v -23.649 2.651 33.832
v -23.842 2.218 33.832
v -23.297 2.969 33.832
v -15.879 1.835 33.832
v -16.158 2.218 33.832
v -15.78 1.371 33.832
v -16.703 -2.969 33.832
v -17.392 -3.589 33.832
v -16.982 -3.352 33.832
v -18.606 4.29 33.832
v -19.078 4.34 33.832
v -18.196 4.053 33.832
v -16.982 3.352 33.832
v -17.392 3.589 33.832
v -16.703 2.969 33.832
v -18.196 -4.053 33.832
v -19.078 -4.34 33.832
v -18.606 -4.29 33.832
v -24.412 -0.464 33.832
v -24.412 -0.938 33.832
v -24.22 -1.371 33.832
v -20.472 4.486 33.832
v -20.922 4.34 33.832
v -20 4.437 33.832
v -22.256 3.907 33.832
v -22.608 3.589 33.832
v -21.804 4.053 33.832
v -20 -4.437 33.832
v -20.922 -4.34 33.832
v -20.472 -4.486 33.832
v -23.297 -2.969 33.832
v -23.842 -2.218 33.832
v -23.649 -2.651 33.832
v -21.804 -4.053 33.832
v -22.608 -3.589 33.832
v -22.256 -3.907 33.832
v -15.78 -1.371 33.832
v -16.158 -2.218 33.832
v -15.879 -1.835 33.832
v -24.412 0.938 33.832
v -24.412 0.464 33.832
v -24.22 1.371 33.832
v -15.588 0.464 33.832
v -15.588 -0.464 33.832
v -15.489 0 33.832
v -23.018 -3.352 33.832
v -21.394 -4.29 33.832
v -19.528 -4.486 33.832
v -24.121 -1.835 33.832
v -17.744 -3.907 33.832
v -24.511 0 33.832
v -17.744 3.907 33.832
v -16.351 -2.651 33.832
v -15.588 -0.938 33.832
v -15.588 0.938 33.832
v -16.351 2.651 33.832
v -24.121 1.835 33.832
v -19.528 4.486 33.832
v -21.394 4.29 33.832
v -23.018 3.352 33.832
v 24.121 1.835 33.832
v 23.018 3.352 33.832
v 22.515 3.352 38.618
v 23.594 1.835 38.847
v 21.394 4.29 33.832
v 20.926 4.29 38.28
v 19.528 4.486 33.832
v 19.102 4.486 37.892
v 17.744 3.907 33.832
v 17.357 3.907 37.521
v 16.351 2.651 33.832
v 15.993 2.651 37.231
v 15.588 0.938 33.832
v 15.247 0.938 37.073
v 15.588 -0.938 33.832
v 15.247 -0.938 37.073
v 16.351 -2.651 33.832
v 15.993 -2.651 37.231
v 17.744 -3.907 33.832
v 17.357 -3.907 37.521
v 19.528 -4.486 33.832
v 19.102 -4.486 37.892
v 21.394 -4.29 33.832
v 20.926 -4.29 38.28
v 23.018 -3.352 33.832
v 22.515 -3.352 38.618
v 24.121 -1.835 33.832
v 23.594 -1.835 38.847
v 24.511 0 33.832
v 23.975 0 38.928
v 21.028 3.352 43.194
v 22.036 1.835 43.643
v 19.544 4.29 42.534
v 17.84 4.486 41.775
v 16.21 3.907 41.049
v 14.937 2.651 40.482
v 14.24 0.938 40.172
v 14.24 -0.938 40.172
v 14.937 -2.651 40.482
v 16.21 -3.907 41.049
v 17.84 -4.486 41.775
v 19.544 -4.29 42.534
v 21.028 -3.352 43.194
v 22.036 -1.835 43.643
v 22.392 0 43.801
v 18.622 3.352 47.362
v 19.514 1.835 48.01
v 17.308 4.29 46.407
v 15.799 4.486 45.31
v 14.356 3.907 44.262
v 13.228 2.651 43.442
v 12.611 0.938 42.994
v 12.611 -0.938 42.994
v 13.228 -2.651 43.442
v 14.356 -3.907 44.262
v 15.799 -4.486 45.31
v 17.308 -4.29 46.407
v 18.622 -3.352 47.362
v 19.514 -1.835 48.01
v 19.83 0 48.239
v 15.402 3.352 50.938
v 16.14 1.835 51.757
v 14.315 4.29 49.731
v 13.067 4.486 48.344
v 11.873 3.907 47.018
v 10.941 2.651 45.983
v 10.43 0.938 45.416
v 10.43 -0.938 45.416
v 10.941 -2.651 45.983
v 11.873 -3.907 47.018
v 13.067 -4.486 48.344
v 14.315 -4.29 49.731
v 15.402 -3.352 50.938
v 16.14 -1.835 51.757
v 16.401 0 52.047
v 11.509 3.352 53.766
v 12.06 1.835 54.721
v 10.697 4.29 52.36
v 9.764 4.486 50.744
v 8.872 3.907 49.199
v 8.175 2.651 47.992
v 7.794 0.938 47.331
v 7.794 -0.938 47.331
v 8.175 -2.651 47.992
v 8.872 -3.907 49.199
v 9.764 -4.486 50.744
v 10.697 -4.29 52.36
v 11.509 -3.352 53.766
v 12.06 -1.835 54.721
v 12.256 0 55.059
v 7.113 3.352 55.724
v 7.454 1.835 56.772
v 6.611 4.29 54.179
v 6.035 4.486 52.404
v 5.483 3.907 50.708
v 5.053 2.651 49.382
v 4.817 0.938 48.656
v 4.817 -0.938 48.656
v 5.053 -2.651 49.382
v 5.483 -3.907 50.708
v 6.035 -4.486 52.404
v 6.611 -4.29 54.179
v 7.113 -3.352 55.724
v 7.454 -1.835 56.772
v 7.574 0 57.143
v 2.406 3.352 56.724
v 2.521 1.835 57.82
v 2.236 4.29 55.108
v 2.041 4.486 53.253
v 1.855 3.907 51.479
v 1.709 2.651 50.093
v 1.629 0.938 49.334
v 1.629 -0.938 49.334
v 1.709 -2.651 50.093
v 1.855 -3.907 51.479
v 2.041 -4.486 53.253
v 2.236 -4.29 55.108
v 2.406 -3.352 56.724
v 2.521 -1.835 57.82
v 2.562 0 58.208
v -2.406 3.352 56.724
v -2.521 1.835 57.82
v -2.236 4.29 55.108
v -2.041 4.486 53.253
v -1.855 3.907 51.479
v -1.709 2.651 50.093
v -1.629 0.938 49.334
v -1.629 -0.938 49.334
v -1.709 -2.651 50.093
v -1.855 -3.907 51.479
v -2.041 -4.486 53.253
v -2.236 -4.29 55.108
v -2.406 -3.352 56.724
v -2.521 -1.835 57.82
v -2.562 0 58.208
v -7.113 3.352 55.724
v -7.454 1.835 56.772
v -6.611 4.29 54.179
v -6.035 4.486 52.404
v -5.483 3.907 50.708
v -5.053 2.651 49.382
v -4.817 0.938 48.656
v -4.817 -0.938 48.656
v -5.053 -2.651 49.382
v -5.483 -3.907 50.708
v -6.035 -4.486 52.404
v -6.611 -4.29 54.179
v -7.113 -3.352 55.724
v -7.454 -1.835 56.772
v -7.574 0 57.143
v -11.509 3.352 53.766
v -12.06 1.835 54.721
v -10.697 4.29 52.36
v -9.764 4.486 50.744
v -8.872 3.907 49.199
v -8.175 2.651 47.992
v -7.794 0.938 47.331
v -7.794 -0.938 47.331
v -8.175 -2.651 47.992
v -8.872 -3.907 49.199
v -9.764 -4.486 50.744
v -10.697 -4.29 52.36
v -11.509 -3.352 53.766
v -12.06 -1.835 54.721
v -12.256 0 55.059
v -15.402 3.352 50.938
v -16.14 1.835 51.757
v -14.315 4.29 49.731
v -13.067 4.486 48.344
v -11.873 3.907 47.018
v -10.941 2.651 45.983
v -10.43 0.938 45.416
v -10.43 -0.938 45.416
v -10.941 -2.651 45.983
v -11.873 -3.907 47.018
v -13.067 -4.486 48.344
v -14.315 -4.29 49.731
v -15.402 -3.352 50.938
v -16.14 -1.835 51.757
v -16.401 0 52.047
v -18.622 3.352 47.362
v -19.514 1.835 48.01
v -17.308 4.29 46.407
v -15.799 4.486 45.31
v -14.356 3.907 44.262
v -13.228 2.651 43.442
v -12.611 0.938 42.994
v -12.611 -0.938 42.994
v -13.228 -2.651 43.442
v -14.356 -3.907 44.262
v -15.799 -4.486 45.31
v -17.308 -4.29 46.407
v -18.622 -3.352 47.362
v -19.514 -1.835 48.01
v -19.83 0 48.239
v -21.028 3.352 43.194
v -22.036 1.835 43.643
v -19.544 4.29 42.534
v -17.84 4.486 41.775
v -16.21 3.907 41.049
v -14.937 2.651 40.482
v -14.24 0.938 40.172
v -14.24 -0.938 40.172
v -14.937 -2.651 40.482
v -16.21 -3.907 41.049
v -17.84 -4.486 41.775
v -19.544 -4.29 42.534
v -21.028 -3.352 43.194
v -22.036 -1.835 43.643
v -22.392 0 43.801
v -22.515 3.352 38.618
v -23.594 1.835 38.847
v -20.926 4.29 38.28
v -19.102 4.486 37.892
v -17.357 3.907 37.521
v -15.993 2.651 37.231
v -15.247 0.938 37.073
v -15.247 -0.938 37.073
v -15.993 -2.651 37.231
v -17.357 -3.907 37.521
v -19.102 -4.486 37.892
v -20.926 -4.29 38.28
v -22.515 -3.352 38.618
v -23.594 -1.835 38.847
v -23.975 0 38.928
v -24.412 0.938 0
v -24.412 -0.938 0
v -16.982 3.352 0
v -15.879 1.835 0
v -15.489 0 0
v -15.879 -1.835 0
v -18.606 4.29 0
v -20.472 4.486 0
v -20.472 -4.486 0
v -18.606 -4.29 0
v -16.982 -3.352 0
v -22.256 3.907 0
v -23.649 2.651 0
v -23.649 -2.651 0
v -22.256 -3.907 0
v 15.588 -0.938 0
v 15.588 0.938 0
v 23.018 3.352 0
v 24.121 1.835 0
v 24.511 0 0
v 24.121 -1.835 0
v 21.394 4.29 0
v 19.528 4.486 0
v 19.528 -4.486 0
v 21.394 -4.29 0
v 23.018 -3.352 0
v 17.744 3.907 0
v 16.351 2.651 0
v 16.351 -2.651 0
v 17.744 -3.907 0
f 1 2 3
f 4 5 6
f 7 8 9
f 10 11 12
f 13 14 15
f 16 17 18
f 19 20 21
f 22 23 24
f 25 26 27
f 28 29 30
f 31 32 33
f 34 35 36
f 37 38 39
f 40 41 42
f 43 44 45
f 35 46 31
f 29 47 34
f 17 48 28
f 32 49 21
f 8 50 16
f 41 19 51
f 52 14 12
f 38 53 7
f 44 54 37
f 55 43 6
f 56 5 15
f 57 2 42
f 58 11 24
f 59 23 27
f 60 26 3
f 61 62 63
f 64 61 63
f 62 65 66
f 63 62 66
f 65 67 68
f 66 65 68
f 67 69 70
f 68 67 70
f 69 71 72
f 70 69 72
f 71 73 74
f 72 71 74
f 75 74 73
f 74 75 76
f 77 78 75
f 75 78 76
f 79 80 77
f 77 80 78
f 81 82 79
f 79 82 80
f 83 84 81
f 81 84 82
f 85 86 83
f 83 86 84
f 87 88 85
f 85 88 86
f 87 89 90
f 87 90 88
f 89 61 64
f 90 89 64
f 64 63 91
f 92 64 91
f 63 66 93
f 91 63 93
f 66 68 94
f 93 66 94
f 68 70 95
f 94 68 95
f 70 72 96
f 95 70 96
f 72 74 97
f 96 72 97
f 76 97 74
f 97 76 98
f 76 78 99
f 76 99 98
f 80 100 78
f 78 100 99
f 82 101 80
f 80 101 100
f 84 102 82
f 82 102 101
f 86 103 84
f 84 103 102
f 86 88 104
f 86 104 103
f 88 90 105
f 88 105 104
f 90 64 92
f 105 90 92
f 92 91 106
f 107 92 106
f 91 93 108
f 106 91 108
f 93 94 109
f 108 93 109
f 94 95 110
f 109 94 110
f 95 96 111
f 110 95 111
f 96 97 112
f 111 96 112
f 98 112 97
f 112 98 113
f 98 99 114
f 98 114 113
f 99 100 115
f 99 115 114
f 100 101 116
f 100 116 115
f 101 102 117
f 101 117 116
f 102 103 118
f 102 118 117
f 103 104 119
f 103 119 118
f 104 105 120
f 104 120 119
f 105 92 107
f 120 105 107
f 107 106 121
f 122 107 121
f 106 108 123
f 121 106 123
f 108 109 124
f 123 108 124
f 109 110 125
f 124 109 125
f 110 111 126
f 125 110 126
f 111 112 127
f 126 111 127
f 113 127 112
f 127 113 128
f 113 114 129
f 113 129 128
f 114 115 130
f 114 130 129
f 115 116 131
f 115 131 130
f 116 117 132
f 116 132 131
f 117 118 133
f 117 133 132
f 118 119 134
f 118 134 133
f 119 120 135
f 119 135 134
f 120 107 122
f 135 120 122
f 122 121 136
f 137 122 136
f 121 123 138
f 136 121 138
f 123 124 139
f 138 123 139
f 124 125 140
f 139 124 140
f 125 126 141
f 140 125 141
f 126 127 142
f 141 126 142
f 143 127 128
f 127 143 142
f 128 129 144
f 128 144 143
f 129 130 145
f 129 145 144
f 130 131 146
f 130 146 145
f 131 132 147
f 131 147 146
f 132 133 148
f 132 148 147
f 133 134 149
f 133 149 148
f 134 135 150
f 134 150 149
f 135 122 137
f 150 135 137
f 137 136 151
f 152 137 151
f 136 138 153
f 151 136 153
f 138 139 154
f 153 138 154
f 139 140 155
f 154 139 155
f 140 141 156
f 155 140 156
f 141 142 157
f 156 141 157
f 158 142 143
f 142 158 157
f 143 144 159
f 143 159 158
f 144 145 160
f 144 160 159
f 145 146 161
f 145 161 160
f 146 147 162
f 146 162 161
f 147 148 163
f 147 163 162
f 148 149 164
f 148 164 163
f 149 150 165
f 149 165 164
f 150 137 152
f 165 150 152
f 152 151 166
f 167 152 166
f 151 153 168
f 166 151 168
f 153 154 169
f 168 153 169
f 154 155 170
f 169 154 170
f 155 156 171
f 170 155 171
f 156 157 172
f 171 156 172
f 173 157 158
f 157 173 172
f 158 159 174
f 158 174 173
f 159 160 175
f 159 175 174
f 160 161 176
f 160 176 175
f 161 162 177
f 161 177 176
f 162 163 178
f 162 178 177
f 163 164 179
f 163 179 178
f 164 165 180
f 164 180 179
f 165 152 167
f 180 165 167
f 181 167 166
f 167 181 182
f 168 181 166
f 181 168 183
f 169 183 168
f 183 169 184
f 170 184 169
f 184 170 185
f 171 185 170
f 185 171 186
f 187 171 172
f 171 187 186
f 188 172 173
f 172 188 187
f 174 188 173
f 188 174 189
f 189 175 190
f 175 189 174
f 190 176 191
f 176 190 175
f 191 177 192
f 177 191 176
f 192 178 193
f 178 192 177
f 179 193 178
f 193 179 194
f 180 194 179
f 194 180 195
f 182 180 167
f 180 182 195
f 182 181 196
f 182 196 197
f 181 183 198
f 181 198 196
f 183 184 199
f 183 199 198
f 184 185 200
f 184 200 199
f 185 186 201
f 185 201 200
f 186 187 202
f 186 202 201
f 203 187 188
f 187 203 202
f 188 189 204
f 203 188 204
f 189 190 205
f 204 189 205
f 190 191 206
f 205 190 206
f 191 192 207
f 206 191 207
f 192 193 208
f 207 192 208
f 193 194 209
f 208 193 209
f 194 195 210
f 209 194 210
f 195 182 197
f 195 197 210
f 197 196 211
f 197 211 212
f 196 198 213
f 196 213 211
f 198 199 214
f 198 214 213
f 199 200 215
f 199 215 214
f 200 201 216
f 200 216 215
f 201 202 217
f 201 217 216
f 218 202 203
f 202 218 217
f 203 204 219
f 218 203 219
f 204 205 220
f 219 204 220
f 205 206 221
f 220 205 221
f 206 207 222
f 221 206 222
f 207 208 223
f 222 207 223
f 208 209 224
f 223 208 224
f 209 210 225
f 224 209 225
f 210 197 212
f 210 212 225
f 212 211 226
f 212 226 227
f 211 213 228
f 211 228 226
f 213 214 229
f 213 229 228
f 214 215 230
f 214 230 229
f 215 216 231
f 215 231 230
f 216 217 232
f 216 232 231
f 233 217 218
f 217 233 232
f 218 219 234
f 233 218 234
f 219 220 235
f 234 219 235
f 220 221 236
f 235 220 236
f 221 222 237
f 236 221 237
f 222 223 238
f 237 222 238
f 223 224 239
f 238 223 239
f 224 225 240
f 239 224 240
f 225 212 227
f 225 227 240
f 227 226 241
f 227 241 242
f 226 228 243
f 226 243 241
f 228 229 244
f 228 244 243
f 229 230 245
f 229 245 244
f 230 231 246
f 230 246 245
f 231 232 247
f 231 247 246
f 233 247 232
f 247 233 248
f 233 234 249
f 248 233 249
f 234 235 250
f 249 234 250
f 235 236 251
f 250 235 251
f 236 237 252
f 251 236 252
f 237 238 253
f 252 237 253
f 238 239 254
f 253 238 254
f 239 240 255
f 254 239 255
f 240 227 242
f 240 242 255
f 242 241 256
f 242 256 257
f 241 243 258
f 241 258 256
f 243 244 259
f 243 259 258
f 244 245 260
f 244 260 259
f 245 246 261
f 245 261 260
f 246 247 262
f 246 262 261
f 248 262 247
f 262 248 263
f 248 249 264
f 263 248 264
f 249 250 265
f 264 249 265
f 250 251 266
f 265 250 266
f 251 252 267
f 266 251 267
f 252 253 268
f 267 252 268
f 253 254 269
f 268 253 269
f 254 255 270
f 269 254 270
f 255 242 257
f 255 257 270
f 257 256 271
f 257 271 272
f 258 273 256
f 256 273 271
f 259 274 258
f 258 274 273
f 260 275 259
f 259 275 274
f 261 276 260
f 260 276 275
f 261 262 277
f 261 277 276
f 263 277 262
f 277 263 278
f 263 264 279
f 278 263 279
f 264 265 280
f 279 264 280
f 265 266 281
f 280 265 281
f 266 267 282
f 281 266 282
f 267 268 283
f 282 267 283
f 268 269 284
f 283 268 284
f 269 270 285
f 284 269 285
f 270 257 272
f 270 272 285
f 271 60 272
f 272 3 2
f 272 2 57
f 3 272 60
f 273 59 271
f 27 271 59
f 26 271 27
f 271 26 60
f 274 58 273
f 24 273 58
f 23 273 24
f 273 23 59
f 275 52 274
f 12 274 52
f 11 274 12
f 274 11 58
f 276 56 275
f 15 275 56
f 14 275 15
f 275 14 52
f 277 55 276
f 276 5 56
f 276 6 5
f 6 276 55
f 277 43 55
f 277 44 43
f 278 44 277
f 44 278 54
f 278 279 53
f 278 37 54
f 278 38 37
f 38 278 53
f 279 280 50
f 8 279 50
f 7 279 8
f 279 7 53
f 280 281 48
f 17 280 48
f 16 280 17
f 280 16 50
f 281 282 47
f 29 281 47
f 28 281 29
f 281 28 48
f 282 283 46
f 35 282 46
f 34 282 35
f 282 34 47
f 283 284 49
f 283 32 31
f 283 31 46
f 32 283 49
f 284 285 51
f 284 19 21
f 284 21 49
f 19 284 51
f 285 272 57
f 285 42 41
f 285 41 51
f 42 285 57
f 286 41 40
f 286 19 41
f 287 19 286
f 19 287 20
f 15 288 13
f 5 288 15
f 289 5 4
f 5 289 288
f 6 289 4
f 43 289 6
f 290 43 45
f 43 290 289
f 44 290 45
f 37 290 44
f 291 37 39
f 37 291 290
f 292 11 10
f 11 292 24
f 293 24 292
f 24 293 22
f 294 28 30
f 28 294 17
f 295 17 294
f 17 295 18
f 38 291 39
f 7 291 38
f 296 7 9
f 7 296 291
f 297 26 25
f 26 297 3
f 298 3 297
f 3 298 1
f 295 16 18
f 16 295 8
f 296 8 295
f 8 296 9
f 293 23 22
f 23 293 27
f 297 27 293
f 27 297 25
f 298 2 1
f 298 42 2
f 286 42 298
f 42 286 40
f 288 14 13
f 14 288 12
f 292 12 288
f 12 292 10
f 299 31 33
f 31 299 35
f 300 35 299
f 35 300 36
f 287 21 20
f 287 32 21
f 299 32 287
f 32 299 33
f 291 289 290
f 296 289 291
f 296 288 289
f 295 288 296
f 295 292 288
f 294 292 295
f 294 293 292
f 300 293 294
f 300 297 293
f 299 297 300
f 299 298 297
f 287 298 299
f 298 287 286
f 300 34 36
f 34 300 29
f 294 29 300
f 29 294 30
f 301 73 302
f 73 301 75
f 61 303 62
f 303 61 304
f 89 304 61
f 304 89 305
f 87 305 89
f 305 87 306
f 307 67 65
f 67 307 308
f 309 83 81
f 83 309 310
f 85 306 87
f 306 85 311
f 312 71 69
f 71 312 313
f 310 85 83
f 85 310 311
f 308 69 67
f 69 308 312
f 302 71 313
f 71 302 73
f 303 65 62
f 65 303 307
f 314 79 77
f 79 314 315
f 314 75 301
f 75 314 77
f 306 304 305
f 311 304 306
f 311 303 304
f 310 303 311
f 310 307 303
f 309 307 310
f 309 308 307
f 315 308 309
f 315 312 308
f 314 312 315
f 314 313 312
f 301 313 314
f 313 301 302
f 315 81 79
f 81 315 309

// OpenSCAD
/* doodle-meta {"version":1,"parameters":{"bend_radius":{"label":"Bend Radius","description":"Radius of the 180-degree arc bend","unit":"mm","feature":"bend"},"leg_length":{"label":"Leg Length","description":"Length of the straight vertical legs","unit":"mm","feature":"legs"},"bar_diameter":{"label":"Bar Diameter","description":"Diameter of the circular cross-section of the handle bar","unit":"mm","feature":"cross_section"}},"features":{"bend":{"kind":"region","label":"Arc Bend","min":[0,0,30],"max":[28.6,8,54]},"legs":{"kind":"region","label":"Straight Legs","min":[0,0,0],"max":[28.6,8,30]},"cross_section":{"kind":"region","label":"Cross Section","min":[0,0,0],"max":[8,8,8]}}} */

// Parameters
bend_radius = 20;
leg_length = 33.83176008687661;
bar_diameter = 9.021802689833764;

// Derived dimensions
// The handle is symmetric about the Z axis (vertical centerline).
// The bend is a 180-degree arc. The legs extend downwards from the ends of the arc.
// The arc lies in the XZ plane (front view).
// The legs are parallel to the Z axis.
// The cross-section is circular with diameter bar_diameter.

// The center of the arc is at (0, 0, leg_length) relative to the bottom of the legs.
// The legs go from Z=0 to Z=leg_length.
// The arc connects the tops of the legs.
// The arc goes from X = -bend_radius to X = +bend_radius.
// The top of the arc is at Z = leg_length + bend_radius.
// The total height is leg_length + bend_radius + bar_diameter/2.

// To build this in OpenSCAD, we use rotate_extrude for the bend and cylinders for the legs.
// rotate_extrude rotates around the Z axis.
// We define the profile in the XZ plane (which is the plane of the U-shape).
// The profile is a circle of radius bar_diameter/2 centered at (bend_radius, 0) in the XZ plane?
// No, rotate_extrude takes a 2D polygon in the XY plane and rotates it around Z.
// So we define the profile in the XY plane.
// The profile is a circle of radius bar_diameter/2 centered at (bend_radius, 0).
// rotate_extrude(angle=180) creates a half-torus.
// This half-torus lies in the XY plane (flat).
// We need to rotate it 90 degrees around X to make it stand up in the XZ plane.
// rotate([90, 0, 0])

module handle_body() {
    // The bend (torus segment)
    // Create a half-torus using rotate_extrude
    // Profile: circle in XY plane, centered at (bend_radius, 0), radius bar_diameter/2
    // Rotate 180 degrees around Z
    // Then rotate 90 degrees around X to align with XZ plane
    // Then translate up by leg_length
    
    translate([0, 0, leg_length])
        rotate([90, 0, 0])
            rotate_extrude(angle=180)
                translate([bend_radius, 0])
                    circle(r=bar_diameter/2);
    
    // The legs
    // Left leg at X = -bend_radius
    translate([-bend_radius, 0, 0])
        cylinder(h=leg_length, r=bar_diameter/2);
        
    // Right leg at X = +bend_radius
    translate([bend_radius, 0, 0])
        cylinder(h=leg_length, r=bar_diameter/2);
}

handle_body();
